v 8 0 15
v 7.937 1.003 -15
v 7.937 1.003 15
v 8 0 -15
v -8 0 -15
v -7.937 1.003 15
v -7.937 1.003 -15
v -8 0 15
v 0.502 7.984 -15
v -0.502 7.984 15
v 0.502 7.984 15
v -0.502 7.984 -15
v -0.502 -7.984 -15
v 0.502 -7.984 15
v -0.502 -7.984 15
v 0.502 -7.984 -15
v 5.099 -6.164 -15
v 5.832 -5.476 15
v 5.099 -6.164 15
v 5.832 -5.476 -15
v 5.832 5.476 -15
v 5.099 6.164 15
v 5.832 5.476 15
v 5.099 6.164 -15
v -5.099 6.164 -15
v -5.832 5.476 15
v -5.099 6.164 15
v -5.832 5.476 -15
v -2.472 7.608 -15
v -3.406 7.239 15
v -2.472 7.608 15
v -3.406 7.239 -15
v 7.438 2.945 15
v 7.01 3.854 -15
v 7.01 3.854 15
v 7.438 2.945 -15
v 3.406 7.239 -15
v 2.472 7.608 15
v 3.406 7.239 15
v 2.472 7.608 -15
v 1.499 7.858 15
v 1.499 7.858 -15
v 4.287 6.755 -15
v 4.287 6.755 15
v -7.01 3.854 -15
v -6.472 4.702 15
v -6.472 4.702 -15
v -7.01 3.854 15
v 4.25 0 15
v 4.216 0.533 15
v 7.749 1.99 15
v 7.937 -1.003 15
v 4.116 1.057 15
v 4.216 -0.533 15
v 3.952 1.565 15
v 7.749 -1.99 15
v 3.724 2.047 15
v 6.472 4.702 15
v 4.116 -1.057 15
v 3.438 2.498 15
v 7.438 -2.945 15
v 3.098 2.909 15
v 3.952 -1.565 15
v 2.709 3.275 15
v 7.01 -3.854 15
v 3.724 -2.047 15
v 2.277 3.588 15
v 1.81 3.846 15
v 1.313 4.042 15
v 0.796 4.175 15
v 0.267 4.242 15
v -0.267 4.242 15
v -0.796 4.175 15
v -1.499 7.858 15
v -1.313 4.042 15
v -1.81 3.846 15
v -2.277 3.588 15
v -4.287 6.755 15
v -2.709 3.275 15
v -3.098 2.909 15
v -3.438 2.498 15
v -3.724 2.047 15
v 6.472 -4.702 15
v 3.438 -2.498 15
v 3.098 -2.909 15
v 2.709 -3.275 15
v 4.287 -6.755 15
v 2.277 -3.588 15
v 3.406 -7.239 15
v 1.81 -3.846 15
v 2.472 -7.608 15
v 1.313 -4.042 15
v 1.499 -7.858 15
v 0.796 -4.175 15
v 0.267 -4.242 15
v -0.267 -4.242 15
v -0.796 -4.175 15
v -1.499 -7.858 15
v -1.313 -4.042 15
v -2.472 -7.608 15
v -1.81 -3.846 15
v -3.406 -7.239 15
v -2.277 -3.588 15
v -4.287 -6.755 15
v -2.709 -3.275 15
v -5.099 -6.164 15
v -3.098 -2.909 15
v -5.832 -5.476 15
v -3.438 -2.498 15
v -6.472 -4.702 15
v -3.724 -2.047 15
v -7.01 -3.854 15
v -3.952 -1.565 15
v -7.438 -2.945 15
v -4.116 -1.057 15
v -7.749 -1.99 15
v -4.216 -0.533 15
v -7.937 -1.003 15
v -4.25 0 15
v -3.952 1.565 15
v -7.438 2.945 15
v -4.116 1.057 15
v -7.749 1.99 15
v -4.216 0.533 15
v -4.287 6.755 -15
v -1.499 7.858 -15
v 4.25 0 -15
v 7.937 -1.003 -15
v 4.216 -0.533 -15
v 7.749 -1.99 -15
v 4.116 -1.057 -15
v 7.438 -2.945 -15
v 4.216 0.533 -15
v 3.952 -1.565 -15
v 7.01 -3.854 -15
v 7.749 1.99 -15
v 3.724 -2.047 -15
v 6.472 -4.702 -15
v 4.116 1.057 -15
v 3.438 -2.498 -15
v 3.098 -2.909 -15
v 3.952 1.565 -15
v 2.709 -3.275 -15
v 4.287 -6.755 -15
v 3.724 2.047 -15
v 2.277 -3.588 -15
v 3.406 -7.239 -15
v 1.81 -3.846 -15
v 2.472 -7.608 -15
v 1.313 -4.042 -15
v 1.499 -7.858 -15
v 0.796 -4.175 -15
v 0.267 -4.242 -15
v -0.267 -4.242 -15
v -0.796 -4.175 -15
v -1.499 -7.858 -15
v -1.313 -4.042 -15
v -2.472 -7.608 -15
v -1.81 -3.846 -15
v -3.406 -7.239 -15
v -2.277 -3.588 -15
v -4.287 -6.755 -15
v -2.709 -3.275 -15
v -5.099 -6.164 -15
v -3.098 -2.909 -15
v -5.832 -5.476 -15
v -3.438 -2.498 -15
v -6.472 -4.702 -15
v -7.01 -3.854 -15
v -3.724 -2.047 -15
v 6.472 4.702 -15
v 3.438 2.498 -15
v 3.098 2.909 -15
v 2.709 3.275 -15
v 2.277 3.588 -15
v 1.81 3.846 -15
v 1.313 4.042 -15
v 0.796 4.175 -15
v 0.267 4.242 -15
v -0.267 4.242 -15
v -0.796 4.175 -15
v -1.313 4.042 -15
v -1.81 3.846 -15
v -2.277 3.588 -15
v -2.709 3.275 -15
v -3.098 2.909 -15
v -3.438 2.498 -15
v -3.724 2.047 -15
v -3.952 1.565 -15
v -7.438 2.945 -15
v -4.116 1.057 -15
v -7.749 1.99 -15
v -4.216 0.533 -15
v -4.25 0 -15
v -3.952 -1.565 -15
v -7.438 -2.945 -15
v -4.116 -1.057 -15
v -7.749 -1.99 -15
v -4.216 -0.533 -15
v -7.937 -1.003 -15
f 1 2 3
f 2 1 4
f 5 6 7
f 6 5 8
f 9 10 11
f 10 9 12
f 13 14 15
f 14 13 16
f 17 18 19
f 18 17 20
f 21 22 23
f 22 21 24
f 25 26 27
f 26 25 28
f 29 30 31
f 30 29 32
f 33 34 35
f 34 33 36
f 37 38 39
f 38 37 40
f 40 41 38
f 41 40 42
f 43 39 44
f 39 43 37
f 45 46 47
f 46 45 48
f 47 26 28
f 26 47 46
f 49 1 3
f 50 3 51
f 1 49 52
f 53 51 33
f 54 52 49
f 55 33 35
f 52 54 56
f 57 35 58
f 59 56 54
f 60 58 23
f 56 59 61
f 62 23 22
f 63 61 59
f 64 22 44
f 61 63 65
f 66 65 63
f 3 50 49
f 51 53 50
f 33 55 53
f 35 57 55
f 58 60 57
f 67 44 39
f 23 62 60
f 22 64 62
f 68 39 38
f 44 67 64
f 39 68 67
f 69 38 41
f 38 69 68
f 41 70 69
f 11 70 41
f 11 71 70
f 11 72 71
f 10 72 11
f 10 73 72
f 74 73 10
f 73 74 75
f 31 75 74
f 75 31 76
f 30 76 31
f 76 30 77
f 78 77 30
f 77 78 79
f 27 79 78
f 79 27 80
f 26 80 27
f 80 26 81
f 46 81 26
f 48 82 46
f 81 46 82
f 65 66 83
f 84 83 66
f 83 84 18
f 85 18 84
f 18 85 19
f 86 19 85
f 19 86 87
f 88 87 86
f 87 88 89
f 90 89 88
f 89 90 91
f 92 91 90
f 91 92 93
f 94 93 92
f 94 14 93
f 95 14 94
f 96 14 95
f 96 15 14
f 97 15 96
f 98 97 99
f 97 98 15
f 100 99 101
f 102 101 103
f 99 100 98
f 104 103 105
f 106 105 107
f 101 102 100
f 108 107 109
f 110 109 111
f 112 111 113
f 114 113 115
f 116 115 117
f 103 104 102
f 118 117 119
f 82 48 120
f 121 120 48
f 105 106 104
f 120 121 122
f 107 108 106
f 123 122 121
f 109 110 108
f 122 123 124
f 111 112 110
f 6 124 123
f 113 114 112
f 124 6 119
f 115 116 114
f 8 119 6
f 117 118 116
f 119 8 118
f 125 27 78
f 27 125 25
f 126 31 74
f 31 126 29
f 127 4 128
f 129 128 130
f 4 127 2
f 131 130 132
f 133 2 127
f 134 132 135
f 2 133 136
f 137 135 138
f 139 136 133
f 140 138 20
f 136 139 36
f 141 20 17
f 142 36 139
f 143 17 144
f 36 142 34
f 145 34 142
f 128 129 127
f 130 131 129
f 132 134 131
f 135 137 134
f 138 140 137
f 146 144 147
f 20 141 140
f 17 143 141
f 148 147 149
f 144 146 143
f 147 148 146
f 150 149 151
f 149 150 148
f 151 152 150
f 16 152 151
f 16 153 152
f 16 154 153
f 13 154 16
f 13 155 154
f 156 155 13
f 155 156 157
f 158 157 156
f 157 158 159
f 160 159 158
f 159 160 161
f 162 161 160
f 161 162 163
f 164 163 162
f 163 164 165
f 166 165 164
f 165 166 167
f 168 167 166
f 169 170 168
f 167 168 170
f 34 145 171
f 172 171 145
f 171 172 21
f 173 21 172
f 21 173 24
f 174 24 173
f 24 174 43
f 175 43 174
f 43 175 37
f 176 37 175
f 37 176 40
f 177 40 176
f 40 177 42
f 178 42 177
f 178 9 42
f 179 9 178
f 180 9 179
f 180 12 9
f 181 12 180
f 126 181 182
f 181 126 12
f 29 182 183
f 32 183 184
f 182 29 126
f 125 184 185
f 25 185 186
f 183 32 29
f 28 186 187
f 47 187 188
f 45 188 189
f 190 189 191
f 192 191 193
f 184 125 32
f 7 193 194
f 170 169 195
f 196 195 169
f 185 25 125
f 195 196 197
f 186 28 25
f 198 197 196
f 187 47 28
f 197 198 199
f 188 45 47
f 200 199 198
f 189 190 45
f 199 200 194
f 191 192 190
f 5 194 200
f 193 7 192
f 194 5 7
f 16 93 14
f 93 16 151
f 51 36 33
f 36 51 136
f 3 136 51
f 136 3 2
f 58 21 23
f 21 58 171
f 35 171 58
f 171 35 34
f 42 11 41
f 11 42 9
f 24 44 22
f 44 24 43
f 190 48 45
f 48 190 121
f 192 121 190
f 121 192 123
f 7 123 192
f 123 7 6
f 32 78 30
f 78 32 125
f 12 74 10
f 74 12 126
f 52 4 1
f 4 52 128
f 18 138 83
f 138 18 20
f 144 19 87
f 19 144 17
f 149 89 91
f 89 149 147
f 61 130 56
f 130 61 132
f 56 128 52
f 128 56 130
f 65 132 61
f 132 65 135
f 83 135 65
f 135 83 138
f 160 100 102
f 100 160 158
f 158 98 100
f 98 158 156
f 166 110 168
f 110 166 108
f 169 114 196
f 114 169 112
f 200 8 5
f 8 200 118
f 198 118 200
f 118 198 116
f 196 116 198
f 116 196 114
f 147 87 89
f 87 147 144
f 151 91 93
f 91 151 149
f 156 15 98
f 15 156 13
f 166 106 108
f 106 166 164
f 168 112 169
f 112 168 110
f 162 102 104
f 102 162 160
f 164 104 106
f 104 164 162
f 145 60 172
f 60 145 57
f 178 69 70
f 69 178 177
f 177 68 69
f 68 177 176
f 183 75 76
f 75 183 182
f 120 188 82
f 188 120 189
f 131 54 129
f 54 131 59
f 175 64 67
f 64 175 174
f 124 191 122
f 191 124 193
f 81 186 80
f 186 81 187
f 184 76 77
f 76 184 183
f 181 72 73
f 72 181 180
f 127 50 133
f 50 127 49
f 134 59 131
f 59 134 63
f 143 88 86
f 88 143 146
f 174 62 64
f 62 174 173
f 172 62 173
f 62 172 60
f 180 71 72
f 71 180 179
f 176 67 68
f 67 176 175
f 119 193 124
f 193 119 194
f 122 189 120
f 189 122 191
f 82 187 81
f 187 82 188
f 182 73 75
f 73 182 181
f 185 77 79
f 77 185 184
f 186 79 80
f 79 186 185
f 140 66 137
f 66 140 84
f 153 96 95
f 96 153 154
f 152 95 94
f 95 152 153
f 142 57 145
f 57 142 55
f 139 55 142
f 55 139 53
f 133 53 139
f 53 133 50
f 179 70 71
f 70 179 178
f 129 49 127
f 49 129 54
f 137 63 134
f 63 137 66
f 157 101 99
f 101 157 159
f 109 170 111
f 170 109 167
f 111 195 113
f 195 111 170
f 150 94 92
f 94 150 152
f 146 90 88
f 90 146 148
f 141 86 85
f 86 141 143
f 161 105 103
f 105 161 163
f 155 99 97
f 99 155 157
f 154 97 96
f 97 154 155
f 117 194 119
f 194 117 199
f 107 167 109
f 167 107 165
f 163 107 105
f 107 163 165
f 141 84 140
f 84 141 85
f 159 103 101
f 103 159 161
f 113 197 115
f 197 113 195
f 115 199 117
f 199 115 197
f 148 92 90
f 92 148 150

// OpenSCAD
$fn = 50;


difference() {
	union() {
		translate(v = [0, 0, -15.0000000000]) {
			cylinder(h = 30, r = 8.0000000000);
		}
	}
	union() {
		translate(v = [0, 0, -100.0000000000]) {
			cylinder(h = 200, r = 4.2500000000);
		}
	}
}
